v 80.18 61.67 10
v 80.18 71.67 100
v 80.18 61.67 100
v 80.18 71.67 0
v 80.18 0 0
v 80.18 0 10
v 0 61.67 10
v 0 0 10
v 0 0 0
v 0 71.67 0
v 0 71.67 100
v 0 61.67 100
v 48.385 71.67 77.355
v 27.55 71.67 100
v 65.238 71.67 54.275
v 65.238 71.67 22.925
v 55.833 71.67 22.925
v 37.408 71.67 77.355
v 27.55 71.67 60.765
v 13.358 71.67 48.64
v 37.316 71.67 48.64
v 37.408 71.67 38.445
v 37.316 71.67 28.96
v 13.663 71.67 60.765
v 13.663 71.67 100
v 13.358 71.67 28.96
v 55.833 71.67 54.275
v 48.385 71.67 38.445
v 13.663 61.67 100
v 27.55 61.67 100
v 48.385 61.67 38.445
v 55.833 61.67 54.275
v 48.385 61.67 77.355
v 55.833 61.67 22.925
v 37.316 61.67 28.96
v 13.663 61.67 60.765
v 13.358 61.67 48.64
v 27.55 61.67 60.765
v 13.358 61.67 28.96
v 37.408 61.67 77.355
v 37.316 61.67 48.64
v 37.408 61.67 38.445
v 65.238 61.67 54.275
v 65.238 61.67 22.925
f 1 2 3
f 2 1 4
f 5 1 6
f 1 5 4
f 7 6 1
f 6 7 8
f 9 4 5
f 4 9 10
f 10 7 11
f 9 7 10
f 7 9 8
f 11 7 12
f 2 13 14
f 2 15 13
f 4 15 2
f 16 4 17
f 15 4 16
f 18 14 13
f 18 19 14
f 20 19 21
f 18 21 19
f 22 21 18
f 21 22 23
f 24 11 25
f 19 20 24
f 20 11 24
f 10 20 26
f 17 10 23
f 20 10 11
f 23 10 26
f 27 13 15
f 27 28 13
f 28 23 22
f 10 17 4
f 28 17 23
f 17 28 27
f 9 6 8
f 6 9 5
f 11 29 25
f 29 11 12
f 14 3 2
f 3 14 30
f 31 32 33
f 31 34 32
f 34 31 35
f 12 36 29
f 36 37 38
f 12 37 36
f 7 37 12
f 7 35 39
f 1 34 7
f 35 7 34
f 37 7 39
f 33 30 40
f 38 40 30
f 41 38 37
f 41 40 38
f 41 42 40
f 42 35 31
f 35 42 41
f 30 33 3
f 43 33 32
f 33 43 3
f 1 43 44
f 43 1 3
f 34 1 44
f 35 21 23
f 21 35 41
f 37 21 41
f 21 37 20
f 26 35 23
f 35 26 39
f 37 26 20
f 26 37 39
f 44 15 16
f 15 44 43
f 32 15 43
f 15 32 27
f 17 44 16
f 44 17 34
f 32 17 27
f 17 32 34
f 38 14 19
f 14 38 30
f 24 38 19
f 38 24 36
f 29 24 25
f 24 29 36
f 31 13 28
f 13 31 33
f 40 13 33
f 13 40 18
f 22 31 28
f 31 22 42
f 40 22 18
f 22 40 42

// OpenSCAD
/* doodle-meta {"version":1,"parameters":{"width":{"label":"Overall width","description":"Changes the width of the bookend","unit":"mm","feature":"body_width"},"depth":{"label":"Overall depth","description":"Changes the depth of the bookend","unit":"mm","feature":"body_depth"},"height":{"label":"Overall height","description":"Changes the height of the bookend","unit":"mm","feature":"body_height"},"panel_thickness":{"label":"Panel thickness","description":"Changes the thickness of the upright panel","unit":"mm","feature":"panel_thickness"},"base_thickness":{"label":"Base thickness","description":"Changes the thickness of the base","unit":"mm","feature":"base_thickness"}},"features":{"body_width":{"kind":"dimension","axis":"x","label":"Overall width"},"body_depth":{"kind":"dimension","axis":"y","label":"Overall depth"},"body_height":{"kind":"dimension","axis":"z","label":"Overall height"},"panel_thickness":{"kind":"region","label":"Panel thickness","min":[0,0,0],"max":[{"parameter":"width","scale":1,"offset":0},{"parameter":"panel_thickness","scale":1,"offset":0},{"parameter":"height","scale":1,"offset":0}]},"base_thickness":{"kind":"region","label":"Base thickness","min":[0,0,0],"max":[{"parameter":"width","scale":1,"offset":0},{"parameter":"depth","scale":1,"offset":0},{"parameter":"base_thickness","scale":1,"offset":0}]}}} */

// Parameters
width = 80.18;
depth = 71.67;
height = 100.0;
panel_thickness = 10.0;
base_thickness = 10.0;

// Derived dimensions
eps = 0.1;

// Cutout parameters from source drawing (u,v normalized within front view)
// Cutout 1 (Top-Left wide): center u=0.316, v=0.612
c1_w = 0.2988 * width;
c1_h = 0.1968 * height;
c1_x = 0.316 * width;
c1_z = (1 - 0.612) * height;

// Cutout 2 (Top-Right narrow vertical): center u=0.755, v=0.614
c2_w = 0.1173 * width;
c2_h = 0.3135 * height;
c2_x = 0.755 * width;
c2_z = (1 - 0.614) * height;

// Cutout 3 (Bottom-Left narrow vertical): center u=0.257, v=0.191
c3_w = 0.1732 * width;
c3_h = 0.4027 * height;
c3_x = 0.257 * width;
c3_z = (1 - 0.191) * height;

// Cutout 4 (Bottom-Right narrow vertical): center u=0.535, v=0.421
c4_w = 0.1369 * width;
c4_h = 0.3891 * height;
c4_x = 0.535 * width;
c4_z = (1 - 0.421) * height;

// Modules
module l_shape() {
    // Base: full width x depth x base_thickness
    cube([width, depth, base_thickness]);
    // Panel: full width x panel_thickness x height (upright at back)
    translate([0, depth - panel_thickness, 0])
        cube([width, panel_thickness, height]);
}

module cutout_rect(w, h, x, z) {
    // Rectangle cutter: box extruded along Y through panel
    // Centered at (x, z) in XZ plane
    translate([x - w/2, depth - panel_thickness - eps, z - h/2])
        cube([w, panel_thickness + 2*eps, h]);
}

// Main Design
difference() {
    l_shape();
    
    // Cutout 1 (Top-Left wide rectangle)
    cutout_rect(c1_w, c1_h, c1_x, c1_z);
    
    // Cutout 2 (Top-Right narrow vertical rectangle)
    cutout_rect(c2_w, c2_h, c2_x, c2_z);
    
    // Cutout 3 (Bottom-Left narrow vertical rectangle)
    cutout_rect(c3_w, c3_h, c3_x, c3_z);
    
    // Cutout 4 (Bottom-Right narrow vertical rectangle)
    cutout_rect(c4_w, c4_h, c4_x, c4_z);
}
